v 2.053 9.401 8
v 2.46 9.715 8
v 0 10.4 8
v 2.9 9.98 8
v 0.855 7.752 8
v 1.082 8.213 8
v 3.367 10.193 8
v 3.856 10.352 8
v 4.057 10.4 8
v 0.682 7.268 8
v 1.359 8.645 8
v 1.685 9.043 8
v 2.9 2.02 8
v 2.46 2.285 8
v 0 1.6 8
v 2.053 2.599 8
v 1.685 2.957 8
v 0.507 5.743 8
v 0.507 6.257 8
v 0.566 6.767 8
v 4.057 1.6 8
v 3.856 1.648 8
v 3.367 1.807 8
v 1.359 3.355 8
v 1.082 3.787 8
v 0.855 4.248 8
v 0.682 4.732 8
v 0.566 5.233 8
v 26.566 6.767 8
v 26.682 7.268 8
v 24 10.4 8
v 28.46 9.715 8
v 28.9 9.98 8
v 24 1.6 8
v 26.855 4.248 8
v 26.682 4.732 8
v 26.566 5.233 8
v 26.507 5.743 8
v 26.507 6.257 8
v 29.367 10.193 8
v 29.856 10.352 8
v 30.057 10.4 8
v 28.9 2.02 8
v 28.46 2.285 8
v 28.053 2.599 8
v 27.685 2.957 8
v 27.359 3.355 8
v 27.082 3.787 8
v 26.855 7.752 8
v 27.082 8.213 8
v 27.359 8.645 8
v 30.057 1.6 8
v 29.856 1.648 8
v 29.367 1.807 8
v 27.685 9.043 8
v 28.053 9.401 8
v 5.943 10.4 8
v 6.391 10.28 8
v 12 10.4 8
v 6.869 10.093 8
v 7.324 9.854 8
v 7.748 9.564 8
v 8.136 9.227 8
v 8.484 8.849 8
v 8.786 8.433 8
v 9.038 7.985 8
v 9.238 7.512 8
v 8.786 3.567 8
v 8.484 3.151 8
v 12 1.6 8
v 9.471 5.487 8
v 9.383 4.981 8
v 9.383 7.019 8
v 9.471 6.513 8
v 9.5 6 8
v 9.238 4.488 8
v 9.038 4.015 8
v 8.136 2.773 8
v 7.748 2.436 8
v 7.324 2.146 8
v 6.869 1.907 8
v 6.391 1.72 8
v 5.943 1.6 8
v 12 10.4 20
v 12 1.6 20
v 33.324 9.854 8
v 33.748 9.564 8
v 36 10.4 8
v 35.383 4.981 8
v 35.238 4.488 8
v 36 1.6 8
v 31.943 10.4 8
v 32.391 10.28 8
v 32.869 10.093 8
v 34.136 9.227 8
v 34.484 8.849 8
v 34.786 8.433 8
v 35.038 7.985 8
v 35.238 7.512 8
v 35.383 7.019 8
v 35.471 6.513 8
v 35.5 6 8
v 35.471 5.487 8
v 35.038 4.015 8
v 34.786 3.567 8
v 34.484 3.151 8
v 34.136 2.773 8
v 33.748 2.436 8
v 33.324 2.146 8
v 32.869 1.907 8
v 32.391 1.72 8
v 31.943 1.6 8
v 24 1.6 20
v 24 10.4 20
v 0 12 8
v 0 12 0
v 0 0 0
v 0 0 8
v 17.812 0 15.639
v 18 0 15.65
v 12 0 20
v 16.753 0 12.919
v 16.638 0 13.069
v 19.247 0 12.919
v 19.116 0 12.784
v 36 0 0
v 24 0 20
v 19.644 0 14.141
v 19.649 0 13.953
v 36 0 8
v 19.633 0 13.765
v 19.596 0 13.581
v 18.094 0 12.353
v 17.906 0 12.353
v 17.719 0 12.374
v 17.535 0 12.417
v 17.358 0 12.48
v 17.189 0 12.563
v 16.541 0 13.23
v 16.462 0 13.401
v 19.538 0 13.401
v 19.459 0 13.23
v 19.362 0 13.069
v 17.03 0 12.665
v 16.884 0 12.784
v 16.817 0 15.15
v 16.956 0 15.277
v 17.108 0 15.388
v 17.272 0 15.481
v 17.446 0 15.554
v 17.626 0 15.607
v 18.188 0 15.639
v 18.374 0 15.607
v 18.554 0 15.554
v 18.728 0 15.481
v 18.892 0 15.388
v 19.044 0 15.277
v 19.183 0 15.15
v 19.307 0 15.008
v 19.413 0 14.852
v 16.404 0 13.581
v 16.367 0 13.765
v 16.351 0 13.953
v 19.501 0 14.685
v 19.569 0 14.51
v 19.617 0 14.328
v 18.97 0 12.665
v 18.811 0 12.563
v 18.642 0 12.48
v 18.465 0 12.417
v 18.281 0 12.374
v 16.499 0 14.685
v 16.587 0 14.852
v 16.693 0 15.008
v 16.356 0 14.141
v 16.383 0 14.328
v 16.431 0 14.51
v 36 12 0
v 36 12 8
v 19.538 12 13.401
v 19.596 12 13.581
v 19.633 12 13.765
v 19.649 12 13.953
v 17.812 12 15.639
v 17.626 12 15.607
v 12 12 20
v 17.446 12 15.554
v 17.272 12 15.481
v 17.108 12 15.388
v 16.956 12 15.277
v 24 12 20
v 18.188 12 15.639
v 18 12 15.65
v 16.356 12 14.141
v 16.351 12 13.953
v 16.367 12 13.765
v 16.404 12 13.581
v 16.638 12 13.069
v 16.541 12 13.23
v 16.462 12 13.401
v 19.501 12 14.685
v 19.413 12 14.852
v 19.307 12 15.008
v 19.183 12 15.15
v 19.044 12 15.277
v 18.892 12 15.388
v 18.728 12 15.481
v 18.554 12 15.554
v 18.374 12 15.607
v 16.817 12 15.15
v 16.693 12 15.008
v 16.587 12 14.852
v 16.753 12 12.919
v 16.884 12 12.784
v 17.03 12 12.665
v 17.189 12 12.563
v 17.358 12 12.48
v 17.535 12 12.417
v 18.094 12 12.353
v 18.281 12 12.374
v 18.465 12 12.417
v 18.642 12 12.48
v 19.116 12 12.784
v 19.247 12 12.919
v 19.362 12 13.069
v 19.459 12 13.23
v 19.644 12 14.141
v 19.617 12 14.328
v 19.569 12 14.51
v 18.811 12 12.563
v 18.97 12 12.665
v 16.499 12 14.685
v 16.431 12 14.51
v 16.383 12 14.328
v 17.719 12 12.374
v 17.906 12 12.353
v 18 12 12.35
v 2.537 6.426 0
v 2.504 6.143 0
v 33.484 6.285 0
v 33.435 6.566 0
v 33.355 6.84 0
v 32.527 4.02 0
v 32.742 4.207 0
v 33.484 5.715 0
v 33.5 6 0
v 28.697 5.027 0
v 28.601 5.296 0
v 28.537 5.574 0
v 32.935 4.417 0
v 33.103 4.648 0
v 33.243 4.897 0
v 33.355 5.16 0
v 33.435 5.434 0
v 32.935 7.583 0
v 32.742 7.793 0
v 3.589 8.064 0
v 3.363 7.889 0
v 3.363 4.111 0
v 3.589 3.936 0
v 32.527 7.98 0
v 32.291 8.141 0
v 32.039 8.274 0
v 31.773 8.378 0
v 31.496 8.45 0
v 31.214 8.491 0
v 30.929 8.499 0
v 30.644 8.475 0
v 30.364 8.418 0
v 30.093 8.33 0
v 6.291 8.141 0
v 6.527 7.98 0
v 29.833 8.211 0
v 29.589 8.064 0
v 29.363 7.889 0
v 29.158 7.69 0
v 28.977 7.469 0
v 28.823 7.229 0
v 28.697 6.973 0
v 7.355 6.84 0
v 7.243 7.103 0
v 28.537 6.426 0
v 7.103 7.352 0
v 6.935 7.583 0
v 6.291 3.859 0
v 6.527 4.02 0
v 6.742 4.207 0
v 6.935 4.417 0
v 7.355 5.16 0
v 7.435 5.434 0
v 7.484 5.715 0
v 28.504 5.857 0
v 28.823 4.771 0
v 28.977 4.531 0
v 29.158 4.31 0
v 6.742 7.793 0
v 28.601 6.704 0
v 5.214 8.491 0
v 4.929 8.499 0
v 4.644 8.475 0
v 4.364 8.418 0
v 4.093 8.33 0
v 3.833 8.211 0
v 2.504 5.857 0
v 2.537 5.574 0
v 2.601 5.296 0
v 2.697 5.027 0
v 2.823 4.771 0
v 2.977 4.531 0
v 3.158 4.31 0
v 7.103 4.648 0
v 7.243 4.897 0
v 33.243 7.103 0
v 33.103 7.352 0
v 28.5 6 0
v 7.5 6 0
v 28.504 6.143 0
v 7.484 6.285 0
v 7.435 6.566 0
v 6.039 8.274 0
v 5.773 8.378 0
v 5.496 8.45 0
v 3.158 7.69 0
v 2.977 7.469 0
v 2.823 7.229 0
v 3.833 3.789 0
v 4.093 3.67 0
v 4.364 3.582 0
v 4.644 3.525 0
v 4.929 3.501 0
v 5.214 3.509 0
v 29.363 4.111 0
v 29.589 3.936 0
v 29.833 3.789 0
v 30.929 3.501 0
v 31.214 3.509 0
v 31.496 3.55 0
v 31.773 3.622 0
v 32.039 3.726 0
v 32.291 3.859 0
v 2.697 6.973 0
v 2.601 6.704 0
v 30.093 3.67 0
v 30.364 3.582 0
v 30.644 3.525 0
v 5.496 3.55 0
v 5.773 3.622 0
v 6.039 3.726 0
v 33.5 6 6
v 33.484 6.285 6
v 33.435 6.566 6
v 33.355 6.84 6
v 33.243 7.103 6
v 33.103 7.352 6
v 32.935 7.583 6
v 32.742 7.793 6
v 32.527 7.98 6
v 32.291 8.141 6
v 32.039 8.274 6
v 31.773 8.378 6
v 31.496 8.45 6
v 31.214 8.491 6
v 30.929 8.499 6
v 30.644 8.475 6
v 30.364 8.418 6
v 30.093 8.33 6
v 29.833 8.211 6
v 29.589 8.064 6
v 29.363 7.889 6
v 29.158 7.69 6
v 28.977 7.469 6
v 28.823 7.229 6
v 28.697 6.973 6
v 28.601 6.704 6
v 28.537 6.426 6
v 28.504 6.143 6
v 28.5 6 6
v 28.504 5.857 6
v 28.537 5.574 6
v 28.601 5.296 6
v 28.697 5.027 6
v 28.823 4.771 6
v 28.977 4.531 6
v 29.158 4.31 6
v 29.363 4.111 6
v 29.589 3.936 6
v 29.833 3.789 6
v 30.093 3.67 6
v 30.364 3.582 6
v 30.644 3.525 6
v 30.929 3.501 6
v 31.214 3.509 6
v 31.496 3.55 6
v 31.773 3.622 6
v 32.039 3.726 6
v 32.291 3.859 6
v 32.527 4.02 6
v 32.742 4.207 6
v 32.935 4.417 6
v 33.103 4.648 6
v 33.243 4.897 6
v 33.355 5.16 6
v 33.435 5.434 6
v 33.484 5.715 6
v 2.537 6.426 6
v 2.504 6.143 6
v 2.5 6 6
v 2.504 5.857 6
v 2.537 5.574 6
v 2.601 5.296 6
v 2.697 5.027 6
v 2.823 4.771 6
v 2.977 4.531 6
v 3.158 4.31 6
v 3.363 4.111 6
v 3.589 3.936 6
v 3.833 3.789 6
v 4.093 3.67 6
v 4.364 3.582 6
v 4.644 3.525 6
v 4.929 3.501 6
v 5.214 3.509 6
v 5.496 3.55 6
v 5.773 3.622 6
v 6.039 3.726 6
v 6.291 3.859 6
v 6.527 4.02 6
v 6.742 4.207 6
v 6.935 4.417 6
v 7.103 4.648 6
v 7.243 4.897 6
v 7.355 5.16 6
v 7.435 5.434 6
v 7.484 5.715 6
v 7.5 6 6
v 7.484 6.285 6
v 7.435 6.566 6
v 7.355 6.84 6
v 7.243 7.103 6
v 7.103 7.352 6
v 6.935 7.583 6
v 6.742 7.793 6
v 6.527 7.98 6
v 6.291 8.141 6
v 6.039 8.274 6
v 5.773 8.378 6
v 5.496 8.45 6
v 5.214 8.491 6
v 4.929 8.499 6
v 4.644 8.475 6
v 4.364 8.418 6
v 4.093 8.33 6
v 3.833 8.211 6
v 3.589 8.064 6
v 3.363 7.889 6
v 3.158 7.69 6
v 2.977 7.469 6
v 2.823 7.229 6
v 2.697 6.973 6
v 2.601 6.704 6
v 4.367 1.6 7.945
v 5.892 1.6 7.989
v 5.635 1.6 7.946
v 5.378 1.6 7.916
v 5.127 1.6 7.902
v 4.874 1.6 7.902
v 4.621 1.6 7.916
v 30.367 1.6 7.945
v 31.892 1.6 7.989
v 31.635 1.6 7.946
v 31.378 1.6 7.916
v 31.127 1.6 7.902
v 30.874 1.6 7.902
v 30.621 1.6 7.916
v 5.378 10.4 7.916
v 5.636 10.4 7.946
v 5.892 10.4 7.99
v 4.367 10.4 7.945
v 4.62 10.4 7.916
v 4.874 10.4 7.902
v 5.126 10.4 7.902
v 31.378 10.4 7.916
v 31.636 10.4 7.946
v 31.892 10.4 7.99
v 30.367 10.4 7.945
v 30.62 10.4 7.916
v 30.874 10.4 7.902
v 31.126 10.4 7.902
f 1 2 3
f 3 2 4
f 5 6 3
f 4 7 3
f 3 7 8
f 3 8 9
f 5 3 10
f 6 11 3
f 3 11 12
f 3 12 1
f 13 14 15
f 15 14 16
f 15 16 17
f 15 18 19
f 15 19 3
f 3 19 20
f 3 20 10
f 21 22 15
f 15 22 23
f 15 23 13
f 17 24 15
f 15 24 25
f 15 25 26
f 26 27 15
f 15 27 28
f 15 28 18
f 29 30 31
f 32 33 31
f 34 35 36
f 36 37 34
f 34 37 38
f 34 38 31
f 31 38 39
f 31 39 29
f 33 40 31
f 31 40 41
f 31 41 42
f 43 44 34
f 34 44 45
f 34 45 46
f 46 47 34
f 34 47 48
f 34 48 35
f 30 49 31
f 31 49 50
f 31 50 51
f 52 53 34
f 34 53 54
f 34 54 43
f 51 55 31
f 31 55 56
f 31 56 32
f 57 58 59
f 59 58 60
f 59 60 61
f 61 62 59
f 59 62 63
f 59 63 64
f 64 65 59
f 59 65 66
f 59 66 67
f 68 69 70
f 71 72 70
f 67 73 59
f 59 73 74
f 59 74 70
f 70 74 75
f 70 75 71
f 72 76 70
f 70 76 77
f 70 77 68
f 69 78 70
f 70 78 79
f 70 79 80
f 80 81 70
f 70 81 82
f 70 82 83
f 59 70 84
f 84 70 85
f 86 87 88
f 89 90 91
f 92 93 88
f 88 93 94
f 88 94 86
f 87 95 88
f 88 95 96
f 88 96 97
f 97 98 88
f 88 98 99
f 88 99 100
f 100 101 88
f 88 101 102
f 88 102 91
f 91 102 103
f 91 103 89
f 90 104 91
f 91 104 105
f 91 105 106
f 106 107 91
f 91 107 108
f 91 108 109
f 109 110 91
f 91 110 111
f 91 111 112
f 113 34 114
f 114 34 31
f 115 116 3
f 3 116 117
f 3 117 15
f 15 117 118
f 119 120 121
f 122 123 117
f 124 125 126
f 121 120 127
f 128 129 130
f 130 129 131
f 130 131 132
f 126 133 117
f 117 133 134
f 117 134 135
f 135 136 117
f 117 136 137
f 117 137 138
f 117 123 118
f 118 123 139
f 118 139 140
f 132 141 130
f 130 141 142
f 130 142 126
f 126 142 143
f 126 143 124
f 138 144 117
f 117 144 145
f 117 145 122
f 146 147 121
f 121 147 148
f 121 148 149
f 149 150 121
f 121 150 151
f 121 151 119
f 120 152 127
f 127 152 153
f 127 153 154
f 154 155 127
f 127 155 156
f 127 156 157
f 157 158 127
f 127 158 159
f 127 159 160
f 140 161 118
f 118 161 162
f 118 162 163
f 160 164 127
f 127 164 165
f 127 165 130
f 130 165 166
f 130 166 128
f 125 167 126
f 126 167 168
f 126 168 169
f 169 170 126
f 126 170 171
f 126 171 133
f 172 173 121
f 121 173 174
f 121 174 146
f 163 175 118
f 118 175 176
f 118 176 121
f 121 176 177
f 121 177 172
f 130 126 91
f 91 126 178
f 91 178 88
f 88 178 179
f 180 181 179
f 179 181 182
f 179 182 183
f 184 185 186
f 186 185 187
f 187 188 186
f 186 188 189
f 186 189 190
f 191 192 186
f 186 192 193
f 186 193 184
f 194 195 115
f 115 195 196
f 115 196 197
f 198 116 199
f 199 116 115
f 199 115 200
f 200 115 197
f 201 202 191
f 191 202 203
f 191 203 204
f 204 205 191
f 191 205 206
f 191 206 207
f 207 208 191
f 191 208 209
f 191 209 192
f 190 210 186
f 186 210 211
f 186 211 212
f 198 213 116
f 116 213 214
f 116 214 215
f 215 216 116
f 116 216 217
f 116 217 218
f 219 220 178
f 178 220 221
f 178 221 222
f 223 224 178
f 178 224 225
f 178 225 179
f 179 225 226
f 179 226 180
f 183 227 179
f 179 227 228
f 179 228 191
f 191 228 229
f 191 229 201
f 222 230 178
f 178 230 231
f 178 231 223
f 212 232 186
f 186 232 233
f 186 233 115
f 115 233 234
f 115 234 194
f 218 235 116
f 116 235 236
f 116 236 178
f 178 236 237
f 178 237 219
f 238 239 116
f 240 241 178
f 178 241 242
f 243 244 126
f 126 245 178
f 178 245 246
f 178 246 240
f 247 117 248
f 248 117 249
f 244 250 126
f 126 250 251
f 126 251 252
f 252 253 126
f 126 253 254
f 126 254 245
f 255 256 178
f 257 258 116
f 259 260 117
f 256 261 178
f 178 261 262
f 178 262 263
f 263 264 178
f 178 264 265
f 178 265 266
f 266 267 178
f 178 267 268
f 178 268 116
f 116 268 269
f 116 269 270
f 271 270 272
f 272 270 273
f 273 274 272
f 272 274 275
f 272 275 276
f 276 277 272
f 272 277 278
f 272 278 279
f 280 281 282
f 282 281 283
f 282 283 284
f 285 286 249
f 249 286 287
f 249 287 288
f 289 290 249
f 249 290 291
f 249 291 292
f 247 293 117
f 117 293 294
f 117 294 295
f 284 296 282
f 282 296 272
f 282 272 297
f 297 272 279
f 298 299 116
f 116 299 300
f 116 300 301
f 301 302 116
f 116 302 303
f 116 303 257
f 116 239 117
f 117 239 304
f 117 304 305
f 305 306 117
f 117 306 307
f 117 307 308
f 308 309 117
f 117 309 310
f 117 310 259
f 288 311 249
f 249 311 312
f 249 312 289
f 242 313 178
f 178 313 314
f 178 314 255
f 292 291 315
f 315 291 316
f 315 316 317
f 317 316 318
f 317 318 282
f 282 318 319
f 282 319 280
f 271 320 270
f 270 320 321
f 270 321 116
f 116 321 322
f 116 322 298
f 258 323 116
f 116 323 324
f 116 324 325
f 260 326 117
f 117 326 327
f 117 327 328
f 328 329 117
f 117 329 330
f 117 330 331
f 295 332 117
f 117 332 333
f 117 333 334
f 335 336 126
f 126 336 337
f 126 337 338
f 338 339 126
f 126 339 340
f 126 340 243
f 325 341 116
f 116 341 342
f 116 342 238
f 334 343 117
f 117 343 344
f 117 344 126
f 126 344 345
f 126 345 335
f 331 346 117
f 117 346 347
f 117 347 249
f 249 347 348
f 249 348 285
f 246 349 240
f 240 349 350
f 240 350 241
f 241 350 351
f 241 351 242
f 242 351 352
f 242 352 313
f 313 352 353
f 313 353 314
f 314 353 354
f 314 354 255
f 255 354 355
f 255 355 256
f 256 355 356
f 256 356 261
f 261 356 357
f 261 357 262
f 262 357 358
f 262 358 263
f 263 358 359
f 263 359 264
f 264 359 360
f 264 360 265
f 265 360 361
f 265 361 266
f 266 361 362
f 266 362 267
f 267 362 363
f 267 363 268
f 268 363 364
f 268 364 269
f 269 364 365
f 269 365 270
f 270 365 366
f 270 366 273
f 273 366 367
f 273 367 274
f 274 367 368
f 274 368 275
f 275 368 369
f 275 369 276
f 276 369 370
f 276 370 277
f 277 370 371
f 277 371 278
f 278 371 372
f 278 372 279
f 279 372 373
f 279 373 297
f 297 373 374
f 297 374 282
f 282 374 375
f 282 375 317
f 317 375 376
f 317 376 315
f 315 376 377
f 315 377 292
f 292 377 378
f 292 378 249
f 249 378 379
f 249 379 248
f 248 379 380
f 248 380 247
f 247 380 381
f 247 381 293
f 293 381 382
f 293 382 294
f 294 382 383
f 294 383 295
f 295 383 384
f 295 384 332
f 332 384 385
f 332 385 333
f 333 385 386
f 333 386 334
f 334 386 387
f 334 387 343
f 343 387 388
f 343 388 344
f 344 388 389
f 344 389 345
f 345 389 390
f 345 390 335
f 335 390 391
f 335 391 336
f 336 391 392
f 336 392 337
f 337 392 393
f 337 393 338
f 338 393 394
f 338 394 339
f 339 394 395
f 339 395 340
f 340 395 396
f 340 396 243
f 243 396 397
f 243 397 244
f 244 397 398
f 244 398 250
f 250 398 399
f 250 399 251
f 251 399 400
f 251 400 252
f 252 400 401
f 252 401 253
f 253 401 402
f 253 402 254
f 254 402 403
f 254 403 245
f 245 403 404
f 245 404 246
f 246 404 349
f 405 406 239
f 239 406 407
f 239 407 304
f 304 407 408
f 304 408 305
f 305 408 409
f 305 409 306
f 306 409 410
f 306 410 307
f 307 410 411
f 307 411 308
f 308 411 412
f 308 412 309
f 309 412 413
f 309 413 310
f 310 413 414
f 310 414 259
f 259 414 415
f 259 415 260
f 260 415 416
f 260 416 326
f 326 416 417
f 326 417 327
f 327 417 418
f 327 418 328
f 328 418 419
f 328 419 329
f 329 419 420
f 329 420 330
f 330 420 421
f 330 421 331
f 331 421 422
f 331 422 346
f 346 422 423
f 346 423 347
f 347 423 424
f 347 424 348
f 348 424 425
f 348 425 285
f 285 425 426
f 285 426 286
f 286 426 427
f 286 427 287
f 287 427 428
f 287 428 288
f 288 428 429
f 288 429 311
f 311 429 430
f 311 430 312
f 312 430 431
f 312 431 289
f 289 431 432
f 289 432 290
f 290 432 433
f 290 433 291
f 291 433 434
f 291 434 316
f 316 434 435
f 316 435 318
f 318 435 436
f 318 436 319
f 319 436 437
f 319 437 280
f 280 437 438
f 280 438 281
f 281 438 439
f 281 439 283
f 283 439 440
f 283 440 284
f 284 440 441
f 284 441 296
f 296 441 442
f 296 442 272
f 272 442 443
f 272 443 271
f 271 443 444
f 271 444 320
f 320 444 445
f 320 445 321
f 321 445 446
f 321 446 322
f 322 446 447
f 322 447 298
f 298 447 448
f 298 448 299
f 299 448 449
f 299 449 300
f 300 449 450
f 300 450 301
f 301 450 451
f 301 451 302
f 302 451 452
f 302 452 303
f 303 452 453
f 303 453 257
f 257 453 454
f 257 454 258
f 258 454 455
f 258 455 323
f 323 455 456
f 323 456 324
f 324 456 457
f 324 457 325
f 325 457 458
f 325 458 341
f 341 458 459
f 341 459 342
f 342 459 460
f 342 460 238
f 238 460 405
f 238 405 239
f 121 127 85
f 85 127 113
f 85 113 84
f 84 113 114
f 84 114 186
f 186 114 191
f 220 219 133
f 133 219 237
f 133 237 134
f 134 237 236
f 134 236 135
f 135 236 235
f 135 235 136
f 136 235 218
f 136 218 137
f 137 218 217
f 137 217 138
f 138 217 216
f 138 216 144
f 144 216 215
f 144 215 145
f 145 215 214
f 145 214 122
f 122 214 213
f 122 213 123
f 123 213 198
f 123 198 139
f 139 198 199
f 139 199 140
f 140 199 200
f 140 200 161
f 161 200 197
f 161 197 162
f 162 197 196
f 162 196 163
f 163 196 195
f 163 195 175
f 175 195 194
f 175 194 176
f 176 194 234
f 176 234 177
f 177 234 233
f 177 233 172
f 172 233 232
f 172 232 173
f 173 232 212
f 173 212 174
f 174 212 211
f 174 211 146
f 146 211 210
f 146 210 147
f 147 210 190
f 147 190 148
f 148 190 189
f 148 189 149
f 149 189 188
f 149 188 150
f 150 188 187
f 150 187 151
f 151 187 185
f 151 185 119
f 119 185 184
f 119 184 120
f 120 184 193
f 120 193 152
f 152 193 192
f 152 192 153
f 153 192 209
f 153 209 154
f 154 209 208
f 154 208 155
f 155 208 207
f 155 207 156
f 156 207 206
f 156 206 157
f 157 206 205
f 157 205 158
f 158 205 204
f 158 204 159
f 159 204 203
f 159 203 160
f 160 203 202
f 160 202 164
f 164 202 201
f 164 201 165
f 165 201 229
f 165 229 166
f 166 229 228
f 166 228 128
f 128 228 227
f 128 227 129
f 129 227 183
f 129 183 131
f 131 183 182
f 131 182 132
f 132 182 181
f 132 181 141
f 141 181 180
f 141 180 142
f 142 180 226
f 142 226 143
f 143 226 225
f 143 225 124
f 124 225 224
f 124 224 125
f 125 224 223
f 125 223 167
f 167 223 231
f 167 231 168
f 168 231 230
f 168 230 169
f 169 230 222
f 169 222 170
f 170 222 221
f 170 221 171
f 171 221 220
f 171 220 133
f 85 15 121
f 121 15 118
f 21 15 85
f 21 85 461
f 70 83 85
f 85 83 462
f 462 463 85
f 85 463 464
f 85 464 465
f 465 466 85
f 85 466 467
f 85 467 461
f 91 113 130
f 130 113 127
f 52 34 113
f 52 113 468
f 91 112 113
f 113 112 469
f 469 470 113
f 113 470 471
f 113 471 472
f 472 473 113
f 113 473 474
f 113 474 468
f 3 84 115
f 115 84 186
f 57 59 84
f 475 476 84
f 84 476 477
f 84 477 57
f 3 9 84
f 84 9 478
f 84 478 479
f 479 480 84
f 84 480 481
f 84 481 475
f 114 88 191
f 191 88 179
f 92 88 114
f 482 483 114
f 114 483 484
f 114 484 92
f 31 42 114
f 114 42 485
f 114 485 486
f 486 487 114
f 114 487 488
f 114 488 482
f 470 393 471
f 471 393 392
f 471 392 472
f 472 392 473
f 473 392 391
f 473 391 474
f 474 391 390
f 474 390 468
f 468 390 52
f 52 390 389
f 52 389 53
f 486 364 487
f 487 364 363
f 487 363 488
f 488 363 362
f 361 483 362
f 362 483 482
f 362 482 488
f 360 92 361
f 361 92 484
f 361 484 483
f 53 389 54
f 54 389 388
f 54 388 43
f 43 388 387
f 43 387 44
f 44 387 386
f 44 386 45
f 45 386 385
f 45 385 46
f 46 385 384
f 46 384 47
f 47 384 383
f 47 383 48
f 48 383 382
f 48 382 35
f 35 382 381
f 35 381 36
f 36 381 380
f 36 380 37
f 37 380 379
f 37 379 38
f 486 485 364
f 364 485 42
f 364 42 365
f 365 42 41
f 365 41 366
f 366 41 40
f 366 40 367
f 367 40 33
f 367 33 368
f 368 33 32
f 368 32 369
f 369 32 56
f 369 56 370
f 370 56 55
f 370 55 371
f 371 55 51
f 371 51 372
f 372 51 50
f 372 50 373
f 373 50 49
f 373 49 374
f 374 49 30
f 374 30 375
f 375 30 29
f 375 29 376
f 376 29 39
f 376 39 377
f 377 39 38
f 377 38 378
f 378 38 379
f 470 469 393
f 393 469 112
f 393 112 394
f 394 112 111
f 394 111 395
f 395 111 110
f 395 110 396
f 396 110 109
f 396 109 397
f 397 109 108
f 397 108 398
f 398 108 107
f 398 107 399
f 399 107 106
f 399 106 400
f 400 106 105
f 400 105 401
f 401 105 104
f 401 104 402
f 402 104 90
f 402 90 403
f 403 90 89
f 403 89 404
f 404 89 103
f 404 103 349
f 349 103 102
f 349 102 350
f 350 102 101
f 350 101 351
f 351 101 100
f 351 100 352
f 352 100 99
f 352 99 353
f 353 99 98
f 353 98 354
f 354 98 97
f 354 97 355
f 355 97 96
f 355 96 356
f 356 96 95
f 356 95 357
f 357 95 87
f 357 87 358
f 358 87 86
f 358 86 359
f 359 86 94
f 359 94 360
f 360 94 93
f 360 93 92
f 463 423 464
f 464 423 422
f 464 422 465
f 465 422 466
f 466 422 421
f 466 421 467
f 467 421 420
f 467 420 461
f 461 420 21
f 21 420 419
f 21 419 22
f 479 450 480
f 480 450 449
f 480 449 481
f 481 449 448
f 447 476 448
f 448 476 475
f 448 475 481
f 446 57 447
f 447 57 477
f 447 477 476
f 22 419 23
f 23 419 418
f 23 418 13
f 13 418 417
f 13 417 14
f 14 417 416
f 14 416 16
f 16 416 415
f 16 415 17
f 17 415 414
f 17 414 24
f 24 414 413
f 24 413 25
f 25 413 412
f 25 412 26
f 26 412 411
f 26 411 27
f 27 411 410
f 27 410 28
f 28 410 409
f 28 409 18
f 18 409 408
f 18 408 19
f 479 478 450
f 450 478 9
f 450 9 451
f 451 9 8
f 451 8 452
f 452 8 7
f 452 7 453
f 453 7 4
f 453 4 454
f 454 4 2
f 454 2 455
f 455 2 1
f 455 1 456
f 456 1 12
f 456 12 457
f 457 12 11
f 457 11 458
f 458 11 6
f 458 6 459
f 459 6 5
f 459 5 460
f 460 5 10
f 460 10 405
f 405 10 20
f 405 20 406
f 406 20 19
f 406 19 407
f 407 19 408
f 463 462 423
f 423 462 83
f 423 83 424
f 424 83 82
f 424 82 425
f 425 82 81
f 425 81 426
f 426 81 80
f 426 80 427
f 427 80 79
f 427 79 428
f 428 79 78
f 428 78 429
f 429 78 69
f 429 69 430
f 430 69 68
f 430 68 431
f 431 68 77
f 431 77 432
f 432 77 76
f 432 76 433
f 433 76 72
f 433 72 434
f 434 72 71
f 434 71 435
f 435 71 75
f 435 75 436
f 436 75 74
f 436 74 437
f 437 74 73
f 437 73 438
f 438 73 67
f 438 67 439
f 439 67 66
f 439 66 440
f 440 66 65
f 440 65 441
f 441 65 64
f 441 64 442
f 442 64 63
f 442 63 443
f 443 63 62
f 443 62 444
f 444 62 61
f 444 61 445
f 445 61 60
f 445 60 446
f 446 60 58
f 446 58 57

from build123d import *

# Parameters (mm, degrees)
ESQUISSE1_W                  = 36
ESQUISSE1_H                  = 12
BOSS_EXTRU_1_DEPTH           = 8
ENL_V_MAT_EXTRU_1_DEPTH      = 39.781438859
ENL_V_MAT_EXTRU_1_DEPTH_BACK = 39.781438859
ESQUISSE2_R                  = 2.5
ESQUISSE3_W                  = 12
ESQUISSE3_H                  = 12
BOSS_EXTRU_2_DEPTH           = 12
ENL_V_MAT_EXTRU_2_DEPTH      = 43.895221179
ENL_V_MAT_EXTRU_2_DEPTH_BACK = 43.895221179
ESQUISSE4_R                  = 1.65
BOSS_EXTRU_3_DEPTH           = 1.6
BOSS_EXTRU_4_START           = -12
BOSS_EXTRU_4_DEPTH           = 1.6
CHANFREIN1_SIZE              = 2


with BuildPart() as part:
    # Esquisse1 → Boss.-Extru.1 (new body)
    with BuildSketch(Plane.XY):
        with Locations((18, 6)):
            Rectangle(ESQUISSE1_W, ESQUISSE1_H)
    extrude(amount=BOSS_EXTRU_1_DEPTH)

    # Esquisse2 → Enlèv. mat.-Extru.1 (cut, two sides: drawn at the far end of the back side and taken through both)
    with BuildSketch(Plane.XY.offset(8).offset(-ENL_V_MAT_EXTRU_1_DEPTH_BACK)):
        with Locations((5, 6)):
            Circle(ESQUISSE2_R)
        with Locations(Location((31, 6, 0), (0, 0, 180))):
            Circle(ESQUISSE2_R)
    extrude(amount=ENL_V_MAT_EXTRU_1_DEPTH + ENL_V_MAT_EXTRU_1_DEPTH_BACK, mode=Mode.SUBTRACT)

    # Esquisse3 → Boss.-Extru.2 (add)
    with BuildSketch(Plane(origin=(0, 12, 0), x_dir=(1, 0, 0), z_dir=(0, 1, 0))):
        with Locations((18, -14)):
            Rectangle(ESQUISSE3_W, ESQUISSE3_H)
    extrude(amount=-BOSS_EXTRU_2_DEPTH)

    # Esquisse4 → Enlèv. mat.-Extru.2 (cut, two sides: drawn at the far end of the back side and taken through both)
    with BuildSketch(Plane(origin=(0, 12, 0), x_dir=(1, 0, 0), z_dir=(0, 1, 0)).offset(-ENL_V_MAT_EXTRU_2_DEPTH_BACK)):
        with Locations(Location((18, -14, 0), (0, 0, 270))):
            Circle(ESQUISSE4_R)
    extrude(amount=ENL_V_MAT_EXTRU_2_DEPTH + ENL_V_MAT_EXTRU_2_DEPTH_BACK, mode=Mode.SUBTRACT)

    # Esquisse5 → Boss.-Extru.3 (add)
    with BuildSketch(Plane.XZ):
        Polygon((12, 8), (0, 8), (12, 20), align=None)
        Polygon((24, 20), (24, 8), (36, 8), align=None)
    extrude(amount=-BOSS_EXTRU_3_DEPTH)

    # Esquisse5<2> → Boss.-Extru.4 (add)
    with BuildSketch(Plane.XZ.offset(BOSS_EXTRU_4_START)):
        Polygon((12, 8), (0, 8), (12, 20), align=None)
        Polygon((24, 20), (24, 8), (36, 8), align=None)
    extrude(amount=BOSS_EXTRU_4_DEPTH)

    # Chanfrein1
    # the kernel refuses this chamfer: 2 mm, written as the material it takes off along each edge
    with BuildSketch(Plane(origin=(5, 6, 8), x_dir=(1, 0, 0), z_dir=(0, -1, 0))) as chanfrein1_piece_1_section:
        Polygon((2.5 + CHANFREIN1_SIZE, 0), (2.5, -CHANFREIN1_SIZE), (2.5, 0), align=None)
    chanfrein1_piece_1 = revolve(axis=Axis((5, 6, 8), (0, 0, 1)), mode=Mode.PRIVATE)
    chanfrein1_piece_1 = split(chanfrein1_piece_1, bisect_by=Plane(origin=(1.524895904, 1.6, 7.024895904), z_dir=(0, 1, 0)), keep=Keep.TOP, mode=Mode.PRIVATE)
    chanfrein1_piece_1 = split(chanfrein1_piece_1, bisect_by=Plane(origin=(1.524895904, 10.4, 7.024895904), z_dir=(0, -1, 0)), keep=Keep.TOP, mode=Mode.PRIVATE)
    add(chanfrein1_piece_1, mode=Mode.SUBTRACT)
    with BuildSketch(Plane(origin=(31, 6, 8), x_dir=(-1, 0, 0), z_dir=(0, 1, 0))) as chanfrein1_piece_2_section:
        Polygon((2.5 + CHANFREIN1_SIZE, 0), (2.5, -CHANFREIN1_SIZE), (2.5, 0), align=None)
    chanfrein1_piece_2 = revolve(axis=Axis((31, 6, 8), (0, 0, 1)), mode=Mode.PRIVATE)
    chanfrein1_piece_2 = split(chanfrein1_piece_2, bisect_by=Plane(origin=(34.475104096, 1.6, 7.024895904), z_dir=(0, 1, 0)), keep=Keep.TOP, mode=Mode.PRIVATE)
    chanfrein1_piece_2 = split(chanfrein1_piece_2, bisect_by=Plane(origin=(34.475104096, 10.4, 7.024895904), z_dir=(0, -1, 0)), keep=Keep.TOP, mode=Mode.PRIVATE)
    add(chanfrein1_piece_2, mode=Mode.SUBTRACT)


solid = part.part
